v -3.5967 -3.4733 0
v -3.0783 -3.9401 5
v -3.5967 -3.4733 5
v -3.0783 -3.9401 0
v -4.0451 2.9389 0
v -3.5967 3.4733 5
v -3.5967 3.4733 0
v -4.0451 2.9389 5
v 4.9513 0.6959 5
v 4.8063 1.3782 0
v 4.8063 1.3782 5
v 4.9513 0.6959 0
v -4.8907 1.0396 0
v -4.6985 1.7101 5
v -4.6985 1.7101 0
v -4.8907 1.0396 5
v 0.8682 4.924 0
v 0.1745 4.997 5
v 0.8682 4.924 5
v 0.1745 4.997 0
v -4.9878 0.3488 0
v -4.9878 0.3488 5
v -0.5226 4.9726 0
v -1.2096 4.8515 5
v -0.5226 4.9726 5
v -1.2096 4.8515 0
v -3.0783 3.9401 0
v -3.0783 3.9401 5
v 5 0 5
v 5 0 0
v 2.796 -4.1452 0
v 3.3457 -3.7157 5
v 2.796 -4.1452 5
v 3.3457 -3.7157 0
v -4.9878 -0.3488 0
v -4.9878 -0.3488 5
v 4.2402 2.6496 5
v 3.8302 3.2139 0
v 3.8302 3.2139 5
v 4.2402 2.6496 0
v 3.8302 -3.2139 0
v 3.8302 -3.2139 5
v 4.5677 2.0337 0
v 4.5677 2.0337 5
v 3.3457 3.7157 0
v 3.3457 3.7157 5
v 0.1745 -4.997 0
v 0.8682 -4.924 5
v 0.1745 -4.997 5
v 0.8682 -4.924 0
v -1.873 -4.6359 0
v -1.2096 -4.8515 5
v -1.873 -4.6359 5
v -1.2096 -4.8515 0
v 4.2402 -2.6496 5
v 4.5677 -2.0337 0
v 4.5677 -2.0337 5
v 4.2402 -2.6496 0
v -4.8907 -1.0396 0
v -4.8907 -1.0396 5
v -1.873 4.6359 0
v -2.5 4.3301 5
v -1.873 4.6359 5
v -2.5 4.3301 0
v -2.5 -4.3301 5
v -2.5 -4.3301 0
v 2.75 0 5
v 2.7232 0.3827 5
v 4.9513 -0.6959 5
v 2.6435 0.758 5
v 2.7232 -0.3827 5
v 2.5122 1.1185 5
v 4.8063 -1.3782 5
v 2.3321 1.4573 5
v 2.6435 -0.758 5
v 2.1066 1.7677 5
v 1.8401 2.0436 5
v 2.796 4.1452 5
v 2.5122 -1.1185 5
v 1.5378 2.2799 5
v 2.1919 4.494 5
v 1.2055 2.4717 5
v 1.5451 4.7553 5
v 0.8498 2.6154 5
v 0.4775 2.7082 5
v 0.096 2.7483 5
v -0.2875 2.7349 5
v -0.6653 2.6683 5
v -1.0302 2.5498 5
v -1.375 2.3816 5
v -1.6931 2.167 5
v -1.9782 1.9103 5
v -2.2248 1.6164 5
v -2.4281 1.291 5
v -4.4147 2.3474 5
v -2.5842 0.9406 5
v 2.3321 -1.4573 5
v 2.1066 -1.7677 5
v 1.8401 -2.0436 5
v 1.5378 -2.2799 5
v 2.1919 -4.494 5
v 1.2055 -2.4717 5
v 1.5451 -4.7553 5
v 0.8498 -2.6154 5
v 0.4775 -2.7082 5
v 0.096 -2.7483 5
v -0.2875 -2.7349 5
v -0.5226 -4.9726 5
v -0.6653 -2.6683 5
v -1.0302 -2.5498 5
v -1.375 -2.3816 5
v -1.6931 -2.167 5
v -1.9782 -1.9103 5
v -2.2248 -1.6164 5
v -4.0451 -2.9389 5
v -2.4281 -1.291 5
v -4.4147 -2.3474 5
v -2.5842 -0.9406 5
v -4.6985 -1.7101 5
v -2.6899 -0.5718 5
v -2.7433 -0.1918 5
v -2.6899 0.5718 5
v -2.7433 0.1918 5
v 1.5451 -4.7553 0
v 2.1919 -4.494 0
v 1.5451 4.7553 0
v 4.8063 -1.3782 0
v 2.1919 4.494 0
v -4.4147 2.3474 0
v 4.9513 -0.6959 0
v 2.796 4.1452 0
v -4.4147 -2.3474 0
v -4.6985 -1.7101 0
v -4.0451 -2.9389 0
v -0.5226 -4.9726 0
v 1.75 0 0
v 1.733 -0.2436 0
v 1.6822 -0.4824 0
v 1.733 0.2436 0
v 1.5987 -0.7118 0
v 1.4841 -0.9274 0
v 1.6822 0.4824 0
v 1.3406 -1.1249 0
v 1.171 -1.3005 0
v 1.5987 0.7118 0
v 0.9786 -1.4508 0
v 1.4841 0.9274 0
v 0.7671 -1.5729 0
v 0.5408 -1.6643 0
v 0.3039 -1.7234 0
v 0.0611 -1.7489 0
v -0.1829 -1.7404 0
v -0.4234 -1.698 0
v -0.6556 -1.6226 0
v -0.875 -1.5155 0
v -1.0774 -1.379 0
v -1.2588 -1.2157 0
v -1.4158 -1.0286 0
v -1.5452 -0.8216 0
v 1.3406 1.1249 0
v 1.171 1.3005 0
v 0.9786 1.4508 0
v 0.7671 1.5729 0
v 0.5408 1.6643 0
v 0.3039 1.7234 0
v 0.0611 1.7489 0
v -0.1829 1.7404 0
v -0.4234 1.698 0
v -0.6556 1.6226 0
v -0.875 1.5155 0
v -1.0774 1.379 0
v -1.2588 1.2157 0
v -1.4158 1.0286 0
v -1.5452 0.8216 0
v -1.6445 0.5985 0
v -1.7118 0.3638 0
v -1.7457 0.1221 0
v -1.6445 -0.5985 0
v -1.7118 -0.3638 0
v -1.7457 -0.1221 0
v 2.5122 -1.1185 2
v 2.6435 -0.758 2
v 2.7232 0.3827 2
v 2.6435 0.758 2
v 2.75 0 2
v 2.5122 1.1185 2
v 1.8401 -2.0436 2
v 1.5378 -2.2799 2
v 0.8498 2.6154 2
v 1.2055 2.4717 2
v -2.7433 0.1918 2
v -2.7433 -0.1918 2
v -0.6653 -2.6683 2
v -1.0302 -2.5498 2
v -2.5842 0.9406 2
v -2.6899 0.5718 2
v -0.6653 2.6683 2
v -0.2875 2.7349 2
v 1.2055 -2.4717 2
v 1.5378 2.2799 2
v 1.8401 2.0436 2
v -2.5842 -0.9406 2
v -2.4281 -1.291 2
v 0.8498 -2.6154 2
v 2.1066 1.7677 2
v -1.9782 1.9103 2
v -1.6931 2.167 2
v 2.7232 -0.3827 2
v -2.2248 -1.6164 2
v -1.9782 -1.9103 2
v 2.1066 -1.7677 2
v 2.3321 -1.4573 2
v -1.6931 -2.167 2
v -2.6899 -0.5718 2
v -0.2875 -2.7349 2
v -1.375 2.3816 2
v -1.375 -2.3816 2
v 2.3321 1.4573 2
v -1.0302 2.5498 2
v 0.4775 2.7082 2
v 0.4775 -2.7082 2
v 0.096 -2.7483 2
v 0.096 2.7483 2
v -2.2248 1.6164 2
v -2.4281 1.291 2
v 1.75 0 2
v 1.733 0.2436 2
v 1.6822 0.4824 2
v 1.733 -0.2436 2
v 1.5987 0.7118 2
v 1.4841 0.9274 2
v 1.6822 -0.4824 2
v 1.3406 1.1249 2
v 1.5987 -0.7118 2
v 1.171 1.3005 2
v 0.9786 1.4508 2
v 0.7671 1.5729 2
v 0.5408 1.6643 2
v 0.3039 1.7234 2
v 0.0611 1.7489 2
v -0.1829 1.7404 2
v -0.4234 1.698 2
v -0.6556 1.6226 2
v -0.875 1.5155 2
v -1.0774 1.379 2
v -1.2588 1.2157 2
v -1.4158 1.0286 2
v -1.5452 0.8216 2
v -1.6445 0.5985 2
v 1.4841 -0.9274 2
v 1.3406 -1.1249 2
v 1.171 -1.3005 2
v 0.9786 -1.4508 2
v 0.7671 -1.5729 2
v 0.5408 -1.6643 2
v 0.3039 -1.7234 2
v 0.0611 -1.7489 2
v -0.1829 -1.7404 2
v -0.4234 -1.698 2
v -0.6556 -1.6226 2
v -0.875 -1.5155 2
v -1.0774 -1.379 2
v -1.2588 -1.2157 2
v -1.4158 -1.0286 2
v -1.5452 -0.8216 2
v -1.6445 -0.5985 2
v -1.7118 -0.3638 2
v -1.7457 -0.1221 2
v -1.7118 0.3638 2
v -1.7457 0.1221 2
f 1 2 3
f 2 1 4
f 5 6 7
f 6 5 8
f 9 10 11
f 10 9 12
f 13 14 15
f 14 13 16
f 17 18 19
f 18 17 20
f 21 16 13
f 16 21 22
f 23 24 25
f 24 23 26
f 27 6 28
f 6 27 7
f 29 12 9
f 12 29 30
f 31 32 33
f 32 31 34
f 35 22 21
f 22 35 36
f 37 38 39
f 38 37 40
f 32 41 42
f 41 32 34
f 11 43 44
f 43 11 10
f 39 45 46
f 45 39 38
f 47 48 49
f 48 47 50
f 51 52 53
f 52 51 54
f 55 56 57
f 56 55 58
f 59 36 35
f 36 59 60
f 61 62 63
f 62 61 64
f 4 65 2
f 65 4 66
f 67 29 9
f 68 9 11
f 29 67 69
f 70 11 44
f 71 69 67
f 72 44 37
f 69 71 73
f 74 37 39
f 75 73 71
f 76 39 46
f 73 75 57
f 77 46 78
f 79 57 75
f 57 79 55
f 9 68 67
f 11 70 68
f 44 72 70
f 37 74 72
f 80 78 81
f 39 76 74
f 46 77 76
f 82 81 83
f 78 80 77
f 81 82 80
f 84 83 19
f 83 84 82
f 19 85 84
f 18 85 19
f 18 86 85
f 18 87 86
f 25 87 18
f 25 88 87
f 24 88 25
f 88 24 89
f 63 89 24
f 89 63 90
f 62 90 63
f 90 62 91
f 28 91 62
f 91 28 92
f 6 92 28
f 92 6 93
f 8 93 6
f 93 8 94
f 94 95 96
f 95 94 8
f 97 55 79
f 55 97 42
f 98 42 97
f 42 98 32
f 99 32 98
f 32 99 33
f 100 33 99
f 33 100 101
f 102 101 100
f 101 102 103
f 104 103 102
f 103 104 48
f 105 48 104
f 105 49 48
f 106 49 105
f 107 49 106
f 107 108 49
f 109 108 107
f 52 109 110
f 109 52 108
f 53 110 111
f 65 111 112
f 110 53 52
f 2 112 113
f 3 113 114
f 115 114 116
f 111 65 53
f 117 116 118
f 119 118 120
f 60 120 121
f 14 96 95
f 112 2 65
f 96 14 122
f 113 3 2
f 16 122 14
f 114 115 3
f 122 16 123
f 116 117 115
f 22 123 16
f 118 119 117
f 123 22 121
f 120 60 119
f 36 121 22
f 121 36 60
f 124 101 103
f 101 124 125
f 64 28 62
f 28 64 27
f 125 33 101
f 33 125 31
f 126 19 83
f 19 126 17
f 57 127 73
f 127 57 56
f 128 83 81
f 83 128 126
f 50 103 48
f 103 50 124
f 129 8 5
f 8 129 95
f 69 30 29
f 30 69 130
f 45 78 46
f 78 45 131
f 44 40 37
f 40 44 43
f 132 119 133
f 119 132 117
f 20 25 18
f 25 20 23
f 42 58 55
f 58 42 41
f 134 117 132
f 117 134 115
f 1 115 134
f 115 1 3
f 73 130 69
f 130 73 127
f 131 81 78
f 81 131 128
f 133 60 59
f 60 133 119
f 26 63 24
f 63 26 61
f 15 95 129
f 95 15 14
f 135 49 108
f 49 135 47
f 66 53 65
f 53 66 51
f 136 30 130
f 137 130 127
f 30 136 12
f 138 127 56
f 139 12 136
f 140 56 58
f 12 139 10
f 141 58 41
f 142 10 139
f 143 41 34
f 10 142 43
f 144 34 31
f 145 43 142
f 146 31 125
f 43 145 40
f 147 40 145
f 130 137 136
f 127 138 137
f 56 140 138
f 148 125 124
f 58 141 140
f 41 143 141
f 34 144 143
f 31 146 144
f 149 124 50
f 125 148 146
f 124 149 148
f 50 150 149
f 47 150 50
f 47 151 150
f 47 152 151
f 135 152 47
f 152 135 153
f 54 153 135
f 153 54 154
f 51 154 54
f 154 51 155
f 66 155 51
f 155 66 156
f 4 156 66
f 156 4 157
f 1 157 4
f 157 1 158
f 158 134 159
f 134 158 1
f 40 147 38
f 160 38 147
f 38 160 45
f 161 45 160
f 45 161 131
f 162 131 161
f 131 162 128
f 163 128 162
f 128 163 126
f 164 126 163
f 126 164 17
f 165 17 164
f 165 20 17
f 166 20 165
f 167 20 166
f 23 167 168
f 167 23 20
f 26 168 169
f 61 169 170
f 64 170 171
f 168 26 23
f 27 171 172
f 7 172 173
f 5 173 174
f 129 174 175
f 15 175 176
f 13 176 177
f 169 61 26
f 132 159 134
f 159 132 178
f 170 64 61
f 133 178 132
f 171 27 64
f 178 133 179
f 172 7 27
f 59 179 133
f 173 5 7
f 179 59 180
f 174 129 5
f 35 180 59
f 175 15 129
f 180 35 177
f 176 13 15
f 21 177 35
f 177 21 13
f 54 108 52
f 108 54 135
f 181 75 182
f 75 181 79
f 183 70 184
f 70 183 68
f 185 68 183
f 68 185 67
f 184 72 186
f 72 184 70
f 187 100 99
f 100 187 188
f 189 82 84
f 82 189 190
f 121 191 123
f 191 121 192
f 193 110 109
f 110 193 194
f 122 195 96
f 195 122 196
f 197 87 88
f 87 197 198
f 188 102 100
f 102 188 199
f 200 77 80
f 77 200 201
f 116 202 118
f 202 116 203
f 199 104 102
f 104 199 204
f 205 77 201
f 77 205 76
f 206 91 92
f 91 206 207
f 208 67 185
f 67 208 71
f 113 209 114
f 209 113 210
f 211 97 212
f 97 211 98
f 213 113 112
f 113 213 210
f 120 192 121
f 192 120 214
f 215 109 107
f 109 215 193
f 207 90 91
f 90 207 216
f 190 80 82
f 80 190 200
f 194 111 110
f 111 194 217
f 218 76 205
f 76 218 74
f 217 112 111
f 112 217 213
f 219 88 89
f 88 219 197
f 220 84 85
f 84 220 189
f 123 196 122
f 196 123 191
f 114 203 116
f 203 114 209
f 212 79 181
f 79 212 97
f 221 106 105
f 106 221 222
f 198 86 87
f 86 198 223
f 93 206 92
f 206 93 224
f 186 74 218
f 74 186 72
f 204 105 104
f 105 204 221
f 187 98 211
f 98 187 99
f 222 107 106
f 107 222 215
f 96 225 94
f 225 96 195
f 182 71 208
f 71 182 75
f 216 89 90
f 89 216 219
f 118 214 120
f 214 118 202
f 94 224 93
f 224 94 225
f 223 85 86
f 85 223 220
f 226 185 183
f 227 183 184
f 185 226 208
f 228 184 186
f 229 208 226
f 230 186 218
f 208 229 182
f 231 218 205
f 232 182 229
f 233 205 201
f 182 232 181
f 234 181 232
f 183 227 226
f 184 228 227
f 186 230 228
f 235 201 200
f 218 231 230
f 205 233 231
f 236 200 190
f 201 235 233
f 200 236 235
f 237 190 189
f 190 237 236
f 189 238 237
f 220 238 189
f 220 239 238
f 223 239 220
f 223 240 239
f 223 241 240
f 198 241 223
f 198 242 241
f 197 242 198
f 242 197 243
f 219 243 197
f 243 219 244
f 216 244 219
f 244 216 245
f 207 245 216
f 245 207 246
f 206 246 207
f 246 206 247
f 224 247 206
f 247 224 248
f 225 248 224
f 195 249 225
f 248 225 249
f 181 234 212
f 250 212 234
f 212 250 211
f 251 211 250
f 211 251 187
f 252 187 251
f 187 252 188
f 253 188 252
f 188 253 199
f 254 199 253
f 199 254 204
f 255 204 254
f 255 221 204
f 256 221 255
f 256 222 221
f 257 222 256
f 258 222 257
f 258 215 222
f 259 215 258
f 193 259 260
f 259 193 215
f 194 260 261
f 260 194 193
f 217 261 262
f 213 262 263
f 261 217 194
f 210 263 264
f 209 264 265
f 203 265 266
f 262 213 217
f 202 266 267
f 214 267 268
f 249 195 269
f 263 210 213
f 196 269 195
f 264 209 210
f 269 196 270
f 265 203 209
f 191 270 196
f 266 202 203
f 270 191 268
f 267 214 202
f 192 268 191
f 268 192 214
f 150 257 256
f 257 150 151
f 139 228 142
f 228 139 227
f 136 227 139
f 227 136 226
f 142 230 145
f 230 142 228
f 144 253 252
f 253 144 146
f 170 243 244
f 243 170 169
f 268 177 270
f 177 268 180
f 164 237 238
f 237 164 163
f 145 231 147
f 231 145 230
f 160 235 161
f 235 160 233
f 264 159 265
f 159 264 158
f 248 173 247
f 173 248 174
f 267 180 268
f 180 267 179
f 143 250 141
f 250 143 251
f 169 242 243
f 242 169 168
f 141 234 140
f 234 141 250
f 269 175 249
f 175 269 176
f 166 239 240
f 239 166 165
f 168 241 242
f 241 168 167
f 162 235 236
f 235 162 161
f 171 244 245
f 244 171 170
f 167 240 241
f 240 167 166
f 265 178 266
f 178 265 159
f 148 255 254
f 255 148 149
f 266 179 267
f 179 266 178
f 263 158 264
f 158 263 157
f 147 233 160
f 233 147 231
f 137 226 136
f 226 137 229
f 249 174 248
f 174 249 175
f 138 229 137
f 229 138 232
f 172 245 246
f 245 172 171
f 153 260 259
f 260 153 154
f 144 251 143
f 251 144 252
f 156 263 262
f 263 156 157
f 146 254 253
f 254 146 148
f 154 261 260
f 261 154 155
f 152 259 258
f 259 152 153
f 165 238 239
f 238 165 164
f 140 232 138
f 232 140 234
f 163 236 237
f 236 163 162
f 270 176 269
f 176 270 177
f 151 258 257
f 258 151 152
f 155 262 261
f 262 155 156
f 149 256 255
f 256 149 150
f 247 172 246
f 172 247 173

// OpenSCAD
$fn = 45; //number of fragments

difference(){
    cylinder(d=10, h = 5);
    translate([0,0,2]) cylinder(d = 5.5,h=3.5);
    translate([0,0,-.1]) cylinder(d=3.5,h=5.5);
}
